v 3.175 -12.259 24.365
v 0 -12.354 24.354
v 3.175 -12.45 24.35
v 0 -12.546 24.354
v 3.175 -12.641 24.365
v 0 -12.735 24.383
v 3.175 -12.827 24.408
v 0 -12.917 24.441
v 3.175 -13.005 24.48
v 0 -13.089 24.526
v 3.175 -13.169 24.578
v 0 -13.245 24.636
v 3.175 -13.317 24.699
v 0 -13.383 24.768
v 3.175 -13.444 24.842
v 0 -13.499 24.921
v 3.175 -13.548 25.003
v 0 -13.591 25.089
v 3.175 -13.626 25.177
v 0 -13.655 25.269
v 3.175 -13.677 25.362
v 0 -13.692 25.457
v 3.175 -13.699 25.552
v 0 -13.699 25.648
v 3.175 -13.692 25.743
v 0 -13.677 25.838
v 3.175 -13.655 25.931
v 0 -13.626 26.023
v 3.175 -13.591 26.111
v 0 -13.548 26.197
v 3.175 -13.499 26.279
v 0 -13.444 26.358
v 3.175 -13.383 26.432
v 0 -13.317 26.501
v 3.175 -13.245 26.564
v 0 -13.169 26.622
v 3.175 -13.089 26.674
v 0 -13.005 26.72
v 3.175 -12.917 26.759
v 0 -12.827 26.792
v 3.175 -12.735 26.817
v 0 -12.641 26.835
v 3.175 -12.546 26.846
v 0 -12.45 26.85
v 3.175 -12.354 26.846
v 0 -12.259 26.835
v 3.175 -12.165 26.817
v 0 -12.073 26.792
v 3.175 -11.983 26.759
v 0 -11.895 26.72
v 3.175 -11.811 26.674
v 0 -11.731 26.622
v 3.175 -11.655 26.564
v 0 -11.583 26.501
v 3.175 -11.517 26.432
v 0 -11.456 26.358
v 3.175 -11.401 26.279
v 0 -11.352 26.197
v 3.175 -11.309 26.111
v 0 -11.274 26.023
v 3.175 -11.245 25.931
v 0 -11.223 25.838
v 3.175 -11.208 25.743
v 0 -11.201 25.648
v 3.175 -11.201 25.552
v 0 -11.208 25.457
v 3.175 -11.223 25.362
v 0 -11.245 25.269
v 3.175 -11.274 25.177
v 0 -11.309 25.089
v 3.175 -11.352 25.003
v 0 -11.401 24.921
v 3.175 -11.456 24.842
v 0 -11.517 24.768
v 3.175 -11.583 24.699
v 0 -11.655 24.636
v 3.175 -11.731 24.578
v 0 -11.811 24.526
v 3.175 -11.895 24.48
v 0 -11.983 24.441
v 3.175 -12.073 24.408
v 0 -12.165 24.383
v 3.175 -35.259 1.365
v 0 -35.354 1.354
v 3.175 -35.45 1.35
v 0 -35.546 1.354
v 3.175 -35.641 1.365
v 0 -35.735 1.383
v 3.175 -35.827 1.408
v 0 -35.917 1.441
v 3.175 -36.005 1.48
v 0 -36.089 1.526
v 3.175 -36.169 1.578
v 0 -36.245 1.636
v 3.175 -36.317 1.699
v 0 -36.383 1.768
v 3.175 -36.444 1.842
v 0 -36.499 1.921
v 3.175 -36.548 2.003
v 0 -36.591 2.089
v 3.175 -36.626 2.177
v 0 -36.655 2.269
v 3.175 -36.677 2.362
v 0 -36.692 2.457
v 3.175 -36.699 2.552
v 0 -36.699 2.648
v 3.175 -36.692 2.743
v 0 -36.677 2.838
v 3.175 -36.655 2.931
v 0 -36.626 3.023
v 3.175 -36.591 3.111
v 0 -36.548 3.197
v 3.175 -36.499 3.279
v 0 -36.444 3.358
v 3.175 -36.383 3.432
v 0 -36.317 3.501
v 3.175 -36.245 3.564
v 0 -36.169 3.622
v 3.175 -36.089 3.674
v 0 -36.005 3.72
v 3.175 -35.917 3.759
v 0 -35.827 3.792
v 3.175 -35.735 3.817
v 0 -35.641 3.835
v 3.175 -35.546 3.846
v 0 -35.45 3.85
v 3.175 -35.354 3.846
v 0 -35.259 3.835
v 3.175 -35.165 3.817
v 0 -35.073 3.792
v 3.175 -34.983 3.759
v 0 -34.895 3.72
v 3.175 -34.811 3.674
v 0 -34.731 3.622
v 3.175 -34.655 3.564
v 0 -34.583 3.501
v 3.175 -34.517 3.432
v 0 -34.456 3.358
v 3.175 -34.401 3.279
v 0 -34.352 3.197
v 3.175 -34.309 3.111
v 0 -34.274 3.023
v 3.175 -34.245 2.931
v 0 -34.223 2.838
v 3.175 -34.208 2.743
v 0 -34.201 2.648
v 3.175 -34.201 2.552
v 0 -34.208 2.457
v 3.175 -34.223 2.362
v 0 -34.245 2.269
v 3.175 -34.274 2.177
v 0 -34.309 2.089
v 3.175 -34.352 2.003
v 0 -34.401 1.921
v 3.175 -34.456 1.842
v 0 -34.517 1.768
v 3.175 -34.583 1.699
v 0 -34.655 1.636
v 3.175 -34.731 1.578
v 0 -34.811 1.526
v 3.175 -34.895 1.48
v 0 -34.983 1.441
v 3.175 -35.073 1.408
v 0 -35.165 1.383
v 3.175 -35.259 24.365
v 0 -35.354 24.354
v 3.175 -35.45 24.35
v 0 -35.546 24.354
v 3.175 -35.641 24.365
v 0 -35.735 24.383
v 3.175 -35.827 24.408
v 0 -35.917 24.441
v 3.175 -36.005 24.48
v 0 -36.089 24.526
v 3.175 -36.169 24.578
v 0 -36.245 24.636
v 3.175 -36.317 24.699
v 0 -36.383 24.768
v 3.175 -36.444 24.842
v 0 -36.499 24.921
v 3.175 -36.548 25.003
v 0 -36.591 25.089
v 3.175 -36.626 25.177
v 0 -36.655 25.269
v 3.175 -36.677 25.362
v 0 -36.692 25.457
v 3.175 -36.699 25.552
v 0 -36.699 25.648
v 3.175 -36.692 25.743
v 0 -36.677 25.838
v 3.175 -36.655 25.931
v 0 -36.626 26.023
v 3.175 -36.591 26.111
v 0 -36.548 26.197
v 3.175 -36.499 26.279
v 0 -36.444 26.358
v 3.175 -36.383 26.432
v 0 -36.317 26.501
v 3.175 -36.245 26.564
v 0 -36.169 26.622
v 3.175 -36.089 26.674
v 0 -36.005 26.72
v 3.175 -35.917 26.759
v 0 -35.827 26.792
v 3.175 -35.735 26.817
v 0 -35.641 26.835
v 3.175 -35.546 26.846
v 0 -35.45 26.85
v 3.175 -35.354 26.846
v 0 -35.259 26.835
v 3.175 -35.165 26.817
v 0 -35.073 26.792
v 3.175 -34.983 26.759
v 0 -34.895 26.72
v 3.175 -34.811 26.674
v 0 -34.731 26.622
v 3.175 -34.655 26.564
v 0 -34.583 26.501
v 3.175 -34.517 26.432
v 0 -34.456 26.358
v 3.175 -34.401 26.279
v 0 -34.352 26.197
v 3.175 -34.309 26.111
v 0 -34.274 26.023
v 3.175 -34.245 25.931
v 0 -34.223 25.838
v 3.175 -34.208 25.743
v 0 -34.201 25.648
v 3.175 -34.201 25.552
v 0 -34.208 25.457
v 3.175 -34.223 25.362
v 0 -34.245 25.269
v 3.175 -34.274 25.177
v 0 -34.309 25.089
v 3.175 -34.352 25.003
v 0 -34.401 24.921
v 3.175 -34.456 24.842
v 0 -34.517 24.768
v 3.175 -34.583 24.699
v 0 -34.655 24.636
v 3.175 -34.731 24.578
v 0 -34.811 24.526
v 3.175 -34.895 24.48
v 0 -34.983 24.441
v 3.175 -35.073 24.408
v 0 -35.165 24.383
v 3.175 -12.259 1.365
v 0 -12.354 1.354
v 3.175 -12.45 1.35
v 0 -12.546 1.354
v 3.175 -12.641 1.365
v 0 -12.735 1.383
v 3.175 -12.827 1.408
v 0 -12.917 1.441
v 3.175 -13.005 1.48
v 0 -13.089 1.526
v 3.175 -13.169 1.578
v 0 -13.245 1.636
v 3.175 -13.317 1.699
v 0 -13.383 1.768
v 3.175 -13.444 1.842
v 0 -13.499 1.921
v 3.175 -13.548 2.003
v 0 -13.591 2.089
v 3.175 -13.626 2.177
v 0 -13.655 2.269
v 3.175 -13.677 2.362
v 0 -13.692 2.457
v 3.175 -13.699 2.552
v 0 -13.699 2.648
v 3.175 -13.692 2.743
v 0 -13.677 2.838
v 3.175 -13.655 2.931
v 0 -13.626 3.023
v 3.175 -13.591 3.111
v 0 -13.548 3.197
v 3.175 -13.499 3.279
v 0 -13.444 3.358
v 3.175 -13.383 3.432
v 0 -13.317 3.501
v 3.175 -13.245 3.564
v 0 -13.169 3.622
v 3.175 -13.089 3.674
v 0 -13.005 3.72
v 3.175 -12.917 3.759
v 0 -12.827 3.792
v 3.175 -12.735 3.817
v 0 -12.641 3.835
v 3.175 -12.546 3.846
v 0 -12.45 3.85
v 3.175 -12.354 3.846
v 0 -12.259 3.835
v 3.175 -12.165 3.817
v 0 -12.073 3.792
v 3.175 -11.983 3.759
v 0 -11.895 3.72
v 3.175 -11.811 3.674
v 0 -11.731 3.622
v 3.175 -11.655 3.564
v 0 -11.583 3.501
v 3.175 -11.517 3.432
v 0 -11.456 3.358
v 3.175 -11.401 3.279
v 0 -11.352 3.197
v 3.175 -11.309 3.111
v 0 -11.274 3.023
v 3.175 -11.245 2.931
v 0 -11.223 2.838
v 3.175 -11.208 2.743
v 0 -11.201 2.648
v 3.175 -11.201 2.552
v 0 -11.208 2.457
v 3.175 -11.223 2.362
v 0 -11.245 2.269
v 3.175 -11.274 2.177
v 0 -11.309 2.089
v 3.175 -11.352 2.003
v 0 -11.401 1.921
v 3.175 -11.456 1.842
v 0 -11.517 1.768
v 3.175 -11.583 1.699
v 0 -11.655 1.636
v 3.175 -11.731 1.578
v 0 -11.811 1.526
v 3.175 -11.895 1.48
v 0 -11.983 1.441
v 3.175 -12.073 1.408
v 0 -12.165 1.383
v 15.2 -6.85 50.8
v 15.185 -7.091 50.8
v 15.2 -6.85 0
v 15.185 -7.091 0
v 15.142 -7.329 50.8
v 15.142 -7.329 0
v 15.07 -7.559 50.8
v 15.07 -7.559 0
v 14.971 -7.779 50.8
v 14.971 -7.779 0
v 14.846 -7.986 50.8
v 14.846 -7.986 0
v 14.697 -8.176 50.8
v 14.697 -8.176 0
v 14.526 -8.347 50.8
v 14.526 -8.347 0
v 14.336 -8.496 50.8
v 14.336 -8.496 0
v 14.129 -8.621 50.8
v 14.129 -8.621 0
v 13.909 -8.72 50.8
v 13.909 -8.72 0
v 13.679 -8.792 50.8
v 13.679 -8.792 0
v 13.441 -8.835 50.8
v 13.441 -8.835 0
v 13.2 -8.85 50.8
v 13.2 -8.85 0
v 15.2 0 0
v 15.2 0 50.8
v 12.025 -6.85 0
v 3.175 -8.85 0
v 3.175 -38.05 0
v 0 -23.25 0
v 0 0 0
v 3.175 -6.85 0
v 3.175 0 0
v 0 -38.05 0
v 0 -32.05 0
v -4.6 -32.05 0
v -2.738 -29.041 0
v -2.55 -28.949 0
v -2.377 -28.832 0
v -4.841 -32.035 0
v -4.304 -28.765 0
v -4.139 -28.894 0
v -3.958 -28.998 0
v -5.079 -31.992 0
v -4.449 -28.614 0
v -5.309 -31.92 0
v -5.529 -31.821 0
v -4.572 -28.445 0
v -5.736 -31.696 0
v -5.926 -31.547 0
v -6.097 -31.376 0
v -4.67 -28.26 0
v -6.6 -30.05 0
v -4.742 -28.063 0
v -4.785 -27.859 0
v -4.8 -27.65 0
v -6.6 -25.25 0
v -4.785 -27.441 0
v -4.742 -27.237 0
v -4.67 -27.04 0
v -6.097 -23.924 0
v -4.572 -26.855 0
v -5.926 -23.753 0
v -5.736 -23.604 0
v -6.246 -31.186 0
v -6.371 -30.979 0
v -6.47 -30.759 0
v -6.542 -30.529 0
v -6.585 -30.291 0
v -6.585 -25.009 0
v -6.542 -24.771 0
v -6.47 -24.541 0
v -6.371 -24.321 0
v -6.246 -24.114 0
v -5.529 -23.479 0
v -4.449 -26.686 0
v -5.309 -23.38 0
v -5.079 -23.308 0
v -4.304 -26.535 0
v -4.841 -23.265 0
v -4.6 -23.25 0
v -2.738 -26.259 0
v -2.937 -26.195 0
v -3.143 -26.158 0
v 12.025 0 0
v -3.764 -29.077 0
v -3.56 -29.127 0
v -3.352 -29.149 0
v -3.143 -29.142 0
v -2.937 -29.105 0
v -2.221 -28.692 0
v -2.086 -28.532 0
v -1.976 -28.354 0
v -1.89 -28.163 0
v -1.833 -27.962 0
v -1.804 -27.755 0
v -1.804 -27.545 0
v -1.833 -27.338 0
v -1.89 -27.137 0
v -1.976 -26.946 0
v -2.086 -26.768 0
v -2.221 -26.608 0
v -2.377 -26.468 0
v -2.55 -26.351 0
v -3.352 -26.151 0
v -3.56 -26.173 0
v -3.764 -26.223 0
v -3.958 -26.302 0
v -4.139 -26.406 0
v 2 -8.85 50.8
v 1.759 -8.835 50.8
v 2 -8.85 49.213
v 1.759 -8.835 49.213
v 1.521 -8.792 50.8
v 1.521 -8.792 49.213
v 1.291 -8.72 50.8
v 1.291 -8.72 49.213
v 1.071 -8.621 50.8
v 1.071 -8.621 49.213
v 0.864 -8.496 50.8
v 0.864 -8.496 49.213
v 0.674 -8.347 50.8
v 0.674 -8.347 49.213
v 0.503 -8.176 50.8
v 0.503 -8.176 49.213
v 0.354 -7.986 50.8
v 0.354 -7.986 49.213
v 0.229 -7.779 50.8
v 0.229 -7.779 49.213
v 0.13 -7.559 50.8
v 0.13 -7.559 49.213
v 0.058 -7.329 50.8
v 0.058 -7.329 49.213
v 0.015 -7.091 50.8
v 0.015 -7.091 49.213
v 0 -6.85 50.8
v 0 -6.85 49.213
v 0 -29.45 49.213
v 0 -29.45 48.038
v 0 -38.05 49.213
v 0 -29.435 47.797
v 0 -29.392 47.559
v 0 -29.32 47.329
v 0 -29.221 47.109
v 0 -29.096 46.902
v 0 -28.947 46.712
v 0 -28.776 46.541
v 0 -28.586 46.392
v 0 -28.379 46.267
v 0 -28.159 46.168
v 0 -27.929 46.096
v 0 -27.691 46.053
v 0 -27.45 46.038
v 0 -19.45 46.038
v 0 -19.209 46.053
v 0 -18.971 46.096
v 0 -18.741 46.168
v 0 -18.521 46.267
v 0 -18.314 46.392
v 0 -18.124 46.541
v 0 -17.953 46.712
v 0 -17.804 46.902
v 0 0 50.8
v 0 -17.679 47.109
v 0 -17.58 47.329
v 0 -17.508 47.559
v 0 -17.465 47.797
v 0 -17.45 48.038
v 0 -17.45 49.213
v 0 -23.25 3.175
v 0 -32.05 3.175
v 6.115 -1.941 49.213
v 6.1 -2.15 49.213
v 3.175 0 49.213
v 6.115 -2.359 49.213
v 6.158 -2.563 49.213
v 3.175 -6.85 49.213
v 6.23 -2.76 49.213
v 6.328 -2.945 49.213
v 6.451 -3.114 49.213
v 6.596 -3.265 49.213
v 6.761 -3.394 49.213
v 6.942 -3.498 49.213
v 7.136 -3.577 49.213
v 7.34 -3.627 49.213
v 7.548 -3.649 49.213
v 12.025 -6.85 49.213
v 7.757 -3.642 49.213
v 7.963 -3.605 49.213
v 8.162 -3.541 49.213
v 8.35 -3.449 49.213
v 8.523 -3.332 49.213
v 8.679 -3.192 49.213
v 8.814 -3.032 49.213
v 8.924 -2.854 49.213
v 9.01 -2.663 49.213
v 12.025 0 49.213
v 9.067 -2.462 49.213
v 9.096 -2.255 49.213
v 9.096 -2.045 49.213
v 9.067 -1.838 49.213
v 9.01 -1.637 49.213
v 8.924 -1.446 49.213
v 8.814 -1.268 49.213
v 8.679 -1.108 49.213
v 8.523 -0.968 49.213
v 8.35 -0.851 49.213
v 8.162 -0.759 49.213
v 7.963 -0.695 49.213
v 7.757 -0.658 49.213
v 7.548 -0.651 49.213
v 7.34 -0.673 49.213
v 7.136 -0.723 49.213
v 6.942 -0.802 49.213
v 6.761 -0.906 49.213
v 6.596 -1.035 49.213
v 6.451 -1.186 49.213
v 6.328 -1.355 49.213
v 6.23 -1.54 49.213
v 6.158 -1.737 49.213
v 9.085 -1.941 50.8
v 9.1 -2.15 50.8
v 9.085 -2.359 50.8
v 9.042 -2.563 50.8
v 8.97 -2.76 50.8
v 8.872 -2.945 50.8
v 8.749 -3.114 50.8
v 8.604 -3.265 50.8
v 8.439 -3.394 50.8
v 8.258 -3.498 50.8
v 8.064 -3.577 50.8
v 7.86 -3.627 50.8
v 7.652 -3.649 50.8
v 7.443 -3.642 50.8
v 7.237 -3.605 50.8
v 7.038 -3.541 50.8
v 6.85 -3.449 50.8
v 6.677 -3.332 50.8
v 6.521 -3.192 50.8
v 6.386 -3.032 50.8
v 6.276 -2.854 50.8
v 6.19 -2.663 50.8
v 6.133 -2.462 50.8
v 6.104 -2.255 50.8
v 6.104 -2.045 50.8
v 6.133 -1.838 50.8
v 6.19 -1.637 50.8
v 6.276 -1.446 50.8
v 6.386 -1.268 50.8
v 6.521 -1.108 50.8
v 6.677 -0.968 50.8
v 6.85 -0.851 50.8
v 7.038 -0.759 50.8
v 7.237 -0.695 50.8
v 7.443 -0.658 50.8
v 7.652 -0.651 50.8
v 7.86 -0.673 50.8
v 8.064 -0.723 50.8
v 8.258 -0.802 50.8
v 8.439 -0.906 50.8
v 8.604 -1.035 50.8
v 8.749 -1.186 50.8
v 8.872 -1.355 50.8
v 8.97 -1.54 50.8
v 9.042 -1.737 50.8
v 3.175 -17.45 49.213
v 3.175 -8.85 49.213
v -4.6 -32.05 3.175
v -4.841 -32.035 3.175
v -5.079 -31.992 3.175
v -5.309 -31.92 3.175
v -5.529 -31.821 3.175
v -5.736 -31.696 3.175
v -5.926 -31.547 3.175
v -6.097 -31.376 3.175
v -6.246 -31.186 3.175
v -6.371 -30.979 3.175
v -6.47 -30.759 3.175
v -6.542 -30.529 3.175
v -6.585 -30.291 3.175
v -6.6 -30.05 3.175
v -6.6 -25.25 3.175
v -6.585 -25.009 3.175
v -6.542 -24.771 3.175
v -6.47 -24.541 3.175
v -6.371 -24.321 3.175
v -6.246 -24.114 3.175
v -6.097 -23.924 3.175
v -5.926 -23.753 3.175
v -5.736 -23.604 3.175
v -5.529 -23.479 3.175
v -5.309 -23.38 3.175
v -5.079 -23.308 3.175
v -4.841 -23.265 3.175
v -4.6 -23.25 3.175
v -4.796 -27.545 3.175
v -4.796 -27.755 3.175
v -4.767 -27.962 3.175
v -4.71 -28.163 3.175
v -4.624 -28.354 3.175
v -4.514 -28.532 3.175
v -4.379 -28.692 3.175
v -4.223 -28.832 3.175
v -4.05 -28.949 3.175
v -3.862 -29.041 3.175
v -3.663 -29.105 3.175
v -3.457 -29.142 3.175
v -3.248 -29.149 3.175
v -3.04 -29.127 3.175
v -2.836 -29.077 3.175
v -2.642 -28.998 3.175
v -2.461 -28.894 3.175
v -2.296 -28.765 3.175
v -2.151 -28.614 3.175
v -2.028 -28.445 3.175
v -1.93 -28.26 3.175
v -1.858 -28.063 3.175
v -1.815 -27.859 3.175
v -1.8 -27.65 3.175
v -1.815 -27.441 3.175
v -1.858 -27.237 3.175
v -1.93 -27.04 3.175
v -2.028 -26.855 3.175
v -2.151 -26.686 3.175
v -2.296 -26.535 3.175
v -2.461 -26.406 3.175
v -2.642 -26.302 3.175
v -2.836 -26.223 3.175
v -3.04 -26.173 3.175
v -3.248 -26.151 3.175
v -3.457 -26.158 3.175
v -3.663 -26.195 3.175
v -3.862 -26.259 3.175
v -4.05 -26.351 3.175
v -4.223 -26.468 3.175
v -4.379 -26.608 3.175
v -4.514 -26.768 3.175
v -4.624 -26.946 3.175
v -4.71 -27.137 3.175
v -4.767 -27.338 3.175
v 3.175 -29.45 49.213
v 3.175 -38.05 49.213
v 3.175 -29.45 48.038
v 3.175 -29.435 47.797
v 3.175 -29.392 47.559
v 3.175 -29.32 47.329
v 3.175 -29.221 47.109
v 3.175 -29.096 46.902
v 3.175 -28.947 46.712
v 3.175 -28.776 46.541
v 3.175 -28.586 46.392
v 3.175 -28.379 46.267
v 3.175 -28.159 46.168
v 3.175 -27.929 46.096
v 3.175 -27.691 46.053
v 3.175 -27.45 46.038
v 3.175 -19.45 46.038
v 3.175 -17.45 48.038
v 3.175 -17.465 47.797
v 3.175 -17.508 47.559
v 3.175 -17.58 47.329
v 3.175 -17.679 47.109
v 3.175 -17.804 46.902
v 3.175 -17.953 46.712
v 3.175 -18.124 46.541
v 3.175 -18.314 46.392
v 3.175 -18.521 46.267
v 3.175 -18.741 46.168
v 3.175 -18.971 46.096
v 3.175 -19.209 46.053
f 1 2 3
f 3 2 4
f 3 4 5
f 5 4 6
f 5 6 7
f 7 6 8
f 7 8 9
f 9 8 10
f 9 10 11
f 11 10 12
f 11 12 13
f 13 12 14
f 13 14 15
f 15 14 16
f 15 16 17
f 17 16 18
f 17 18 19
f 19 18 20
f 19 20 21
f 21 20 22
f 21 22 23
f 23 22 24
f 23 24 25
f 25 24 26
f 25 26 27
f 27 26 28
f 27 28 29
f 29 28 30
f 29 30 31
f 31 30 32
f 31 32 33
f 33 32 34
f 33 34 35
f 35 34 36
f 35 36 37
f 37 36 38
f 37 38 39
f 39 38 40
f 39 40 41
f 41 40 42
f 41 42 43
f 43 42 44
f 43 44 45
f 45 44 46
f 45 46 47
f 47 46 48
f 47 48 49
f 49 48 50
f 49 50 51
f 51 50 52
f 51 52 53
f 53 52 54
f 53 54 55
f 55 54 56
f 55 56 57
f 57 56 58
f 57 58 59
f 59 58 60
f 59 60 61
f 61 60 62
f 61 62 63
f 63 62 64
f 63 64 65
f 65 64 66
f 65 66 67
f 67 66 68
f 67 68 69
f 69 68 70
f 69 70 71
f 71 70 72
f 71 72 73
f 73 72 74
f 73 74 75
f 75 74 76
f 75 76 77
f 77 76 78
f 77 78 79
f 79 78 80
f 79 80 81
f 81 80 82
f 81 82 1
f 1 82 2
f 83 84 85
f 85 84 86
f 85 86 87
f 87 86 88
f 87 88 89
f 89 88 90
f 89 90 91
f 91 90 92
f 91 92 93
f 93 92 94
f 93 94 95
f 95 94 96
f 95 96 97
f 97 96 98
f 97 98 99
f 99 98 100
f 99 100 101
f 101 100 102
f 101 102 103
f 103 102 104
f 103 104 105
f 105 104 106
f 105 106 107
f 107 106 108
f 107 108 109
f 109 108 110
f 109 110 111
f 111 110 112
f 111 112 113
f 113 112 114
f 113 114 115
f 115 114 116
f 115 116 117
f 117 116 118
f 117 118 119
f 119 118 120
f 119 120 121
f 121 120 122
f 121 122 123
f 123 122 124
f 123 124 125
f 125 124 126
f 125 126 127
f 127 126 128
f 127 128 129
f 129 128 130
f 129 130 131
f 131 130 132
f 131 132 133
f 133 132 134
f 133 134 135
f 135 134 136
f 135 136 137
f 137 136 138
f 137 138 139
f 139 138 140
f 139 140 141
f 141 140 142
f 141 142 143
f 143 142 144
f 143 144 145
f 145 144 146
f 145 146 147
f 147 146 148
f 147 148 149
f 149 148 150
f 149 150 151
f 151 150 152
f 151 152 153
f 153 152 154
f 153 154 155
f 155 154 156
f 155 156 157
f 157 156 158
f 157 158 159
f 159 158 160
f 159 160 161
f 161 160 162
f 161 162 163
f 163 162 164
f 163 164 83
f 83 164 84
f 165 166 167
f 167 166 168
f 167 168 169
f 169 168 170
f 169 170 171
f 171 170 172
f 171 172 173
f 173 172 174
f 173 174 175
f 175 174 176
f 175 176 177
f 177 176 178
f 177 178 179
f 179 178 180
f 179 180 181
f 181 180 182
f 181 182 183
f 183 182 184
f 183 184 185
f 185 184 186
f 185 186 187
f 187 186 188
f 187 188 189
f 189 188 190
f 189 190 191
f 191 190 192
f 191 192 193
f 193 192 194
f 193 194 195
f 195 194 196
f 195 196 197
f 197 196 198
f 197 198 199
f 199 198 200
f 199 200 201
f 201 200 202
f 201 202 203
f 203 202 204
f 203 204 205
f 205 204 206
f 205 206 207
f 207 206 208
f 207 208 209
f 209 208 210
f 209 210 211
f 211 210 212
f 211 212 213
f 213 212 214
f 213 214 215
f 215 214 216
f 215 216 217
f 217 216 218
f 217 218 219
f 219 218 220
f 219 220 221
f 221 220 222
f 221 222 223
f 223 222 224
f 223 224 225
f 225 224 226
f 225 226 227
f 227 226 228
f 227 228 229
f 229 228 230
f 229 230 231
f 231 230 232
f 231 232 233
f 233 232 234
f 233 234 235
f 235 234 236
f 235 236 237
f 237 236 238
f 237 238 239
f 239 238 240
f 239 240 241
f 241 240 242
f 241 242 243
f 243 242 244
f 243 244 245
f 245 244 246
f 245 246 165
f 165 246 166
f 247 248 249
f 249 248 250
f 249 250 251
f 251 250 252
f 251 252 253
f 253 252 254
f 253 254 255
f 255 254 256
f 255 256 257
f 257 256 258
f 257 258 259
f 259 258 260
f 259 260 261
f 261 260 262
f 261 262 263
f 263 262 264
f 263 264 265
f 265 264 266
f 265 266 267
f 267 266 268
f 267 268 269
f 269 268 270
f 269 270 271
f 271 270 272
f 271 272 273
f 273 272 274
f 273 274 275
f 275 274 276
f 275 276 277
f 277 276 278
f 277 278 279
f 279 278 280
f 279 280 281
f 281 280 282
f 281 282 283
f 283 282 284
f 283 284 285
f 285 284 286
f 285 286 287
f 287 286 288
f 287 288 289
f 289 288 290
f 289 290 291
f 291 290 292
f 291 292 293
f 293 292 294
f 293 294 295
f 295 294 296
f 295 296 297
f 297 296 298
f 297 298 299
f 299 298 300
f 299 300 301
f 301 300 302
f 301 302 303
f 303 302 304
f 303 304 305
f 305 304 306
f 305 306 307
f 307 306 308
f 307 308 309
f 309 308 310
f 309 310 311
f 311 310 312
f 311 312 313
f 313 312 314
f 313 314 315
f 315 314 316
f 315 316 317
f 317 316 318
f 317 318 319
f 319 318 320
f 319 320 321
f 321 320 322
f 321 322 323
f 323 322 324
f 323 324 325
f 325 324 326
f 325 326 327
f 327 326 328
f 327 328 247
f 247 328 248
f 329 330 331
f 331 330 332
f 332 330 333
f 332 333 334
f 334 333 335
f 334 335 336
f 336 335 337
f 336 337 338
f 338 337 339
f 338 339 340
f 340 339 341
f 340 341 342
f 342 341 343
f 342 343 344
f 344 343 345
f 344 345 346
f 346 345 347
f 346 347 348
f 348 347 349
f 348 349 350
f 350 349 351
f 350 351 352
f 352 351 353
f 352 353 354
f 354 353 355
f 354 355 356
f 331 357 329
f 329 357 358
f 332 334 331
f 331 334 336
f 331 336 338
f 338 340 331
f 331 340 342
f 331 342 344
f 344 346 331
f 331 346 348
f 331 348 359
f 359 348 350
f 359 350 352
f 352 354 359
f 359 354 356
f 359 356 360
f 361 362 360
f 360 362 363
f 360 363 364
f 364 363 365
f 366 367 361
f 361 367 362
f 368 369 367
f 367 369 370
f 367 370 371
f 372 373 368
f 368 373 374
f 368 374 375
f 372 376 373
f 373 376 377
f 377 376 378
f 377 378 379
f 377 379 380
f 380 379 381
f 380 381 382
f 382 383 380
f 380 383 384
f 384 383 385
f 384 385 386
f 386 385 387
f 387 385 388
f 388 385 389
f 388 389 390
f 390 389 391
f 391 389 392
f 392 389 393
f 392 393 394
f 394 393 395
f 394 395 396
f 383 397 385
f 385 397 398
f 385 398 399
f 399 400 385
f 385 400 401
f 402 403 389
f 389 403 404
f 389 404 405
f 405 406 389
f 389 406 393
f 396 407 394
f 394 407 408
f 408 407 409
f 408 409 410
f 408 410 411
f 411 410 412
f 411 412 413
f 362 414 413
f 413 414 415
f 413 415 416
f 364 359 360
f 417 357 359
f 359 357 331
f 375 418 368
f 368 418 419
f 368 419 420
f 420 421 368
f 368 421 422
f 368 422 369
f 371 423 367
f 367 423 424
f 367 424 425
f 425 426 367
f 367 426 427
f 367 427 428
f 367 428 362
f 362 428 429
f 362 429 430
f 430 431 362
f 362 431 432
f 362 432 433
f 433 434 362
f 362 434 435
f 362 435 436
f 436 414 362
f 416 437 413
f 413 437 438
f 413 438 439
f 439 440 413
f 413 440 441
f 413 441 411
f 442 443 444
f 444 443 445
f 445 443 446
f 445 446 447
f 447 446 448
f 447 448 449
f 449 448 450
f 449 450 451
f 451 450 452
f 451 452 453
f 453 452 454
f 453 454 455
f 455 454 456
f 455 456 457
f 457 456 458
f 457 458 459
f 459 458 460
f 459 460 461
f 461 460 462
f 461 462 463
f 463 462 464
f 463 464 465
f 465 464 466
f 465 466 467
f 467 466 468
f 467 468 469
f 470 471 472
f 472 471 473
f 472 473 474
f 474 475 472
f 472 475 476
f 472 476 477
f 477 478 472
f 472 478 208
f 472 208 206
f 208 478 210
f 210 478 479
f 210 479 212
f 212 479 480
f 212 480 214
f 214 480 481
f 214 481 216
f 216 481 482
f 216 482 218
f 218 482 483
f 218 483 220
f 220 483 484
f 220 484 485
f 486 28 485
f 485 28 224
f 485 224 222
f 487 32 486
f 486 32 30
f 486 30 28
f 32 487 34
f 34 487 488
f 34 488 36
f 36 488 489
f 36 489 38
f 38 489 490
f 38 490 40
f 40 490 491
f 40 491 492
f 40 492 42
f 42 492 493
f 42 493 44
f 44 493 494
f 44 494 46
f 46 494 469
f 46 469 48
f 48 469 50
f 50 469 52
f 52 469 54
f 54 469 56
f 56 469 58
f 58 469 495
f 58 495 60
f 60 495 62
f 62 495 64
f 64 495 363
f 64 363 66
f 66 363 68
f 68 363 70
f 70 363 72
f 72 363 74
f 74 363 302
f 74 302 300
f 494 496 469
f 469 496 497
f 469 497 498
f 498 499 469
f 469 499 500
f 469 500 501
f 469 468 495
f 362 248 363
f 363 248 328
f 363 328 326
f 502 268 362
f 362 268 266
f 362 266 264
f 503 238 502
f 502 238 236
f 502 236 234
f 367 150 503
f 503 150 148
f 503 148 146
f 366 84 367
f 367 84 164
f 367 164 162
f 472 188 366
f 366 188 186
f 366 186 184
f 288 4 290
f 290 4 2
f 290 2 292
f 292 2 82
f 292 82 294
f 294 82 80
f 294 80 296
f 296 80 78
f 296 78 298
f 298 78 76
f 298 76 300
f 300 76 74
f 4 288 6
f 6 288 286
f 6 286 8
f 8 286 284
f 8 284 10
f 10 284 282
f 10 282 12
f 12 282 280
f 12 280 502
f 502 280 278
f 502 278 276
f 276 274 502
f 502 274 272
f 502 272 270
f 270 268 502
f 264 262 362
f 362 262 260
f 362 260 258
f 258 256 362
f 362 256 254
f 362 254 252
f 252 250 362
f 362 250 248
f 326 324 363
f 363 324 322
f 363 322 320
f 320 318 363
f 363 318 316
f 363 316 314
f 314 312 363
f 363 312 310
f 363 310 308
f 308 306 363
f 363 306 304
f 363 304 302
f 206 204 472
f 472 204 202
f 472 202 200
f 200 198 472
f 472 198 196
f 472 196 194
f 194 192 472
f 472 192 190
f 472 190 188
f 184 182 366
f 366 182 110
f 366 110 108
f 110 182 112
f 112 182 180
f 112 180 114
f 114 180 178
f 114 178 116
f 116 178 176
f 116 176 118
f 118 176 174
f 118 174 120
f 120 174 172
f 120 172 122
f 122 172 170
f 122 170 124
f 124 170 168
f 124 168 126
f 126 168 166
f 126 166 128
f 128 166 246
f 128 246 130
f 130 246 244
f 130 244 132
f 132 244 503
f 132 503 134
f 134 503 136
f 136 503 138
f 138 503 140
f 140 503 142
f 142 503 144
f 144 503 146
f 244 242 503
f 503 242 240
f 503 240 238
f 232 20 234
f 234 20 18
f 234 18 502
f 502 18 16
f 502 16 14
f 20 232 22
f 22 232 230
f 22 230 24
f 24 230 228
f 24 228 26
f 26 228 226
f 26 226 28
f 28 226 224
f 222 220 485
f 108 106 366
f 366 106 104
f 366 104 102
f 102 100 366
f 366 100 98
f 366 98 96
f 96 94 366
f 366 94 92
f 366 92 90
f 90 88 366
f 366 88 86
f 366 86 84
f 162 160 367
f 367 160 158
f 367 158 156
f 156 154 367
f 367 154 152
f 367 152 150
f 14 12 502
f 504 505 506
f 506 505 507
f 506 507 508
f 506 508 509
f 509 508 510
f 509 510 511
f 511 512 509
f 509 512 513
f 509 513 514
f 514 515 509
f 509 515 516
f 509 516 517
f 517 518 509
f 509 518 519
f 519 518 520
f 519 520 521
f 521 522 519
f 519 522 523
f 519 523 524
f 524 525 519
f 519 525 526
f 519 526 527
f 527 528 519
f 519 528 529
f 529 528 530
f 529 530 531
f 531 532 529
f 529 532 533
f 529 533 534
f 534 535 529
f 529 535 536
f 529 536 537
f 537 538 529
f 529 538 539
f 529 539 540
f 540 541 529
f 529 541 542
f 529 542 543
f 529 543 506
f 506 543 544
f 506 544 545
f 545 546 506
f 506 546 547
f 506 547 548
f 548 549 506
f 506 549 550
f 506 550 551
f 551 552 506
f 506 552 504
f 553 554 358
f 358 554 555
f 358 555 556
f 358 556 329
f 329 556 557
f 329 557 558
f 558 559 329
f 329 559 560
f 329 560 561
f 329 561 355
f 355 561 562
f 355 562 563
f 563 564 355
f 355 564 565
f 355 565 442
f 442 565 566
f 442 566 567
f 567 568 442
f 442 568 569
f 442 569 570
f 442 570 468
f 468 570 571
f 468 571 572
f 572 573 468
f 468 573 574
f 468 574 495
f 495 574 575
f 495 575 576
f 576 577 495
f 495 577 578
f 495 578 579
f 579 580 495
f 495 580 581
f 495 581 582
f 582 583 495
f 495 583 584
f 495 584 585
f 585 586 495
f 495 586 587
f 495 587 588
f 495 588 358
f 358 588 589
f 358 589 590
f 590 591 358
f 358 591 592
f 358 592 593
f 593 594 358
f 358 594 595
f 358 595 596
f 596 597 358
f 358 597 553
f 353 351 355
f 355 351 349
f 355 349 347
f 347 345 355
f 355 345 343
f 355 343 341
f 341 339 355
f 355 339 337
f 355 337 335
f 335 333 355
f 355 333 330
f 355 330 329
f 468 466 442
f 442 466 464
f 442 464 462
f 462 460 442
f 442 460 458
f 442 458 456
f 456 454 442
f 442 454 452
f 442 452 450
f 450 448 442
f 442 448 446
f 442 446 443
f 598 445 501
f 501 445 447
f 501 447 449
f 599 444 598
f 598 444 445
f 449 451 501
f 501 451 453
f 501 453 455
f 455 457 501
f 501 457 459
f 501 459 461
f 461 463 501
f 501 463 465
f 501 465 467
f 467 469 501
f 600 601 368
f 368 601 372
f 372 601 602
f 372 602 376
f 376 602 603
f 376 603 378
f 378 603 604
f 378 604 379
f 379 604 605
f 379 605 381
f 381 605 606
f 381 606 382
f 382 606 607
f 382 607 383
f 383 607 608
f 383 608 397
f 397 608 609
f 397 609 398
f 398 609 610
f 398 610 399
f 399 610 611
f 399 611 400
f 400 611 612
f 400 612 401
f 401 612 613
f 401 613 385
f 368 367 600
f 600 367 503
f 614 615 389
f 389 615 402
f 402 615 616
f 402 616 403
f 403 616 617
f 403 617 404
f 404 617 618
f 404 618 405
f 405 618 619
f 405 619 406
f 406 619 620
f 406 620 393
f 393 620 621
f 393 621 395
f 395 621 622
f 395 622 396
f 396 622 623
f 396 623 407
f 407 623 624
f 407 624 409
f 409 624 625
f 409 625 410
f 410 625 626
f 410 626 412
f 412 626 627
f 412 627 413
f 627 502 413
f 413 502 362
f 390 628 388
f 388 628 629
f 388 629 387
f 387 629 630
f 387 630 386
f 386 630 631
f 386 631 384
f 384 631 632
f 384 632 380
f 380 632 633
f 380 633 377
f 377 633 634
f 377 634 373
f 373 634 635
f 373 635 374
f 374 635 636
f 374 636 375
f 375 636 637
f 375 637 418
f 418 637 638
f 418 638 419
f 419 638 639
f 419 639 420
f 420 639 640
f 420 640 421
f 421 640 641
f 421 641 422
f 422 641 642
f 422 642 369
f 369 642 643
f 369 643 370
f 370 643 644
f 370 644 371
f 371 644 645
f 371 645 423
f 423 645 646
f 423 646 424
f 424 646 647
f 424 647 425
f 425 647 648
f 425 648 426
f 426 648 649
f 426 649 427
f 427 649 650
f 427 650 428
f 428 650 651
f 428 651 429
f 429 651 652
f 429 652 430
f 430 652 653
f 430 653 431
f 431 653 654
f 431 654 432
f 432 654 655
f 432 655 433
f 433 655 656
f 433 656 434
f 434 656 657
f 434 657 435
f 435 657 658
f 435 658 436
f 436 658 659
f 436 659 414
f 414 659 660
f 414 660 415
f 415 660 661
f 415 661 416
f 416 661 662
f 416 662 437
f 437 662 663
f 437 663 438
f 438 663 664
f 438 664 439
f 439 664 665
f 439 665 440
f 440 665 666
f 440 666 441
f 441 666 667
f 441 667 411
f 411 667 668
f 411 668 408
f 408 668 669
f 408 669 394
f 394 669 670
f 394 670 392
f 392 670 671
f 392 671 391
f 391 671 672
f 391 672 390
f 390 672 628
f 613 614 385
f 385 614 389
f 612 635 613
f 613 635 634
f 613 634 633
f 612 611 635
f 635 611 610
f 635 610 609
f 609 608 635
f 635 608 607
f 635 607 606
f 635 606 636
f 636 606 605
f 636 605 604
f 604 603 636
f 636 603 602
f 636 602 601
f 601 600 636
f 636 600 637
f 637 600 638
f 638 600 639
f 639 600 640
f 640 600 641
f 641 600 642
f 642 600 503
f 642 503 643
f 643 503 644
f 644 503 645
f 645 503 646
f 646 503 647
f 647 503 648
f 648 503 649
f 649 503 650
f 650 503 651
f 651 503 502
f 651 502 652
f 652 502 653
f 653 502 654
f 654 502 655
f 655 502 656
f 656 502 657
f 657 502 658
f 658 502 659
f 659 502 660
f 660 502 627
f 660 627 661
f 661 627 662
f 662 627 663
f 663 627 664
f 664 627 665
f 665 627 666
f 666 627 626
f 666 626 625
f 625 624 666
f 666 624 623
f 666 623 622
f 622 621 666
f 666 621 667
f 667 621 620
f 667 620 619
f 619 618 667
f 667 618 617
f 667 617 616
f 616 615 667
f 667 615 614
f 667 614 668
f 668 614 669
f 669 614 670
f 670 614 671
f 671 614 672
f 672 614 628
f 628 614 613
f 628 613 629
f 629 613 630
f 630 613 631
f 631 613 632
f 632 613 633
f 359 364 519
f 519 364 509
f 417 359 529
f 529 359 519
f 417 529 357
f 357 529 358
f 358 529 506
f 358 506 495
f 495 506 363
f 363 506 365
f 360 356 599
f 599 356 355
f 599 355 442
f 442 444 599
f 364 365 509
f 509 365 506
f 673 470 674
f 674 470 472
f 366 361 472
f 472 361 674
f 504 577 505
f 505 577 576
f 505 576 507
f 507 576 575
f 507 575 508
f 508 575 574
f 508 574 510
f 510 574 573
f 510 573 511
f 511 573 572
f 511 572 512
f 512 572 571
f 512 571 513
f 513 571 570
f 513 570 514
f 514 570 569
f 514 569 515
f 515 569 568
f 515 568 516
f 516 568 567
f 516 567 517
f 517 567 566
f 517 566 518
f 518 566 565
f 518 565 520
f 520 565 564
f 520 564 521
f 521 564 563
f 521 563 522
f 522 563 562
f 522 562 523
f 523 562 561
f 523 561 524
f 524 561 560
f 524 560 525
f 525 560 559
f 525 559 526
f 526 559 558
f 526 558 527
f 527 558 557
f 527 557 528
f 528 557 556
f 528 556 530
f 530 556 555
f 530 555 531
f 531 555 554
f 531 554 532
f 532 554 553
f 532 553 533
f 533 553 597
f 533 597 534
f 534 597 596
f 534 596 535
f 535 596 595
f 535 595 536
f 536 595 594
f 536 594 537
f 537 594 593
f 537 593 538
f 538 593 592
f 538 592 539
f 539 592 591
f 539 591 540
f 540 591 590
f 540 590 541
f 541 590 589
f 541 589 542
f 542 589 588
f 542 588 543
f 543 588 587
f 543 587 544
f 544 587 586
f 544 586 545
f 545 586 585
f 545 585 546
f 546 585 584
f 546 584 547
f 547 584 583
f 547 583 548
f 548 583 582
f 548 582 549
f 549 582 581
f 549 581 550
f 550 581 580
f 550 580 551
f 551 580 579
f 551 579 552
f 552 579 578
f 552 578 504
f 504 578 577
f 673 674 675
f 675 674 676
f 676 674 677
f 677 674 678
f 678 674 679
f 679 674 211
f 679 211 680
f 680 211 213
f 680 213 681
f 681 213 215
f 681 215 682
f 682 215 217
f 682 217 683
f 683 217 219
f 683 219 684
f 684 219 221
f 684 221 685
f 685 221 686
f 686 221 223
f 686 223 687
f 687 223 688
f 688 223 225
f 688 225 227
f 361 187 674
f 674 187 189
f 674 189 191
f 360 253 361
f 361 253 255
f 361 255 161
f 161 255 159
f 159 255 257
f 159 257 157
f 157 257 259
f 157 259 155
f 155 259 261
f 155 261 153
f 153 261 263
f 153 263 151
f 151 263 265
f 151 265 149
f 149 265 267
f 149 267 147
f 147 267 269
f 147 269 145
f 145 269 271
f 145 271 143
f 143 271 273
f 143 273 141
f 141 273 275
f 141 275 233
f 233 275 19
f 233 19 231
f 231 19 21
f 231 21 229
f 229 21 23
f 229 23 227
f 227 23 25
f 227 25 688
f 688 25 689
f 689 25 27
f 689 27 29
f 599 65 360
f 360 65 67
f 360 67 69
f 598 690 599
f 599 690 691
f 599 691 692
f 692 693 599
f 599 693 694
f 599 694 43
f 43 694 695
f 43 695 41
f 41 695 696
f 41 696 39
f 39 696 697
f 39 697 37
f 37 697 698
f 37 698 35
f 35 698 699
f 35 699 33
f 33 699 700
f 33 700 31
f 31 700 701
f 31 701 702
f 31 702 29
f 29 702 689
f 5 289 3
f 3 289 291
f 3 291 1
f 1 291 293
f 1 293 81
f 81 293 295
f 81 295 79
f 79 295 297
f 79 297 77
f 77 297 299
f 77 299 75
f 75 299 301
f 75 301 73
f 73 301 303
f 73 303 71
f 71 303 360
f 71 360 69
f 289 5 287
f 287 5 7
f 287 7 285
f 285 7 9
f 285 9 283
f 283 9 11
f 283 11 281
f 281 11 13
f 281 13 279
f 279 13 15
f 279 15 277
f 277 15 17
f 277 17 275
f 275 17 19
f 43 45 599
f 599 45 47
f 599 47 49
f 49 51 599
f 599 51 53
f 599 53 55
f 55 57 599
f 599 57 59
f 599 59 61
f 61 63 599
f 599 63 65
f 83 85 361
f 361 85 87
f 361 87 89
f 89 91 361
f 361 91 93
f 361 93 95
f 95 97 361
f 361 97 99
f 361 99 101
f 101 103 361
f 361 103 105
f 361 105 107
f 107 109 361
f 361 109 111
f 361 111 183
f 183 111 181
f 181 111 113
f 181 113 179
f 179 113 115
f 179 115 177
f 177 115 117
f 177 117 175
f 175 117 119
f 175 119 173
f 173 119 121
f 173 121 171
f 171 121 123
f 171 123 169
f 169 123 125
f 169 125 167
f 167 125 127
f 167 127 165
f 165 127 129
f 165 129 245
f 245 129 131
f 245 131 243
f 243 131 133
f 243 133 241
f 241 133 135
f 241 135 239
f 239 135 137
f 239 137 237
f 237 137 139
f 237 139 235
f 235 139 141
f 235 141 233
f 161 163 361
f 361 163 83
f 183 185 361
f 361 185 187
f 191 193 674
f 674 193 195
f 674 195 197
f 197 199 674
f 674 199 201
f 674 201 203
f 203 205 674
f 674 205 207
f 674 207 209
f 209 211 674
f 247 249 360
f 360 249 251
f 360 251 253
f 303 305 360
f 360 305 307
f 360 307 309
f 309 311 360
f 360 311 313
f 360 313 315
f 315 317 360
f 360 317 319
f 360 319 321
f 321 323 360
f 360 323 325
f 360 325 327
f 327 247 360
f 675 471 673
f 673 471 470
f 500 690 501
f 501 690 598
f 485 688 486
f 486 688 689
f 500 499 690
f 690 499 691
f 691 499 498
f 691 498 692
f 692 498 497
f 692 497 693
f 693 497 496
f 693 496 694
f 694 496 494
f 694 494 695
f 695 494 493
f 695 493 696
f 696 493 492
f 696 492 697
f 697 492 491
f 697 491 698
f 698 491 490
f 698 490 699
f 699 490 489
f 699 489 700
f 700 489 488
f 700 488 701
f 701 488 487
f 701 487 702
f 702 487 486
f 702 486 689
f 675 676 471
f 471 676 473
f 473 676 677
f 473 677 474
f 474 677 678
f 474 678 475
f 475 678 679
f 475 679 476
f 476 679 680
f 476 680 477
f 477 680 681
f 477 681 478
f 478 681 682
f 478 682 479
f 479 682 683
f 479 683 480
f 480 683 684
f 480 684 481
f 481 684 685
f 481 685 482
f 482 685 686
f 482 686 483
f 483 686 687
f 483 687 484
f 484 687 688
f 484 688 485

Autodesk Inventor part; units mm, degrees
ref_plane "YZ Plane" through (0, 0, 0) normal (1, 0, 0) x (0, 1, 0)
ref_plane "XZ Plane" through (0, 0, 0) normal (0, 1, 0) x (-1, 0, 0)
ref_plane "XY Plane" through (0, 0, 0) normal (0, 0, 1) x (1, 0, 0)
sketch "Sketch1" plane through (0, 0, 0) normal (0, 0, 1) x (1, 0, 0)
  line L0 (0, 0) -> (0, -38.05)
  line L1 (0, -38.05) -> (3.175, -38.05)
  line L2 (3.175, -38.05) -> (3.175, 0)
  line L3 (3.175, 0) -> (0, 0)
  line L4 (3.175, 0) -> (3.175, -6.85)
  line L5 (3.175, -6.85) -> (12.025, -6.85)
  line L6 (12.025, -6.85) -> (12.025, 0)
  line L7 (12.025, 0) -> (15.2, 0)
  line L8 (15.2, 0) -> (15.2, -6.85)
  line L9 (15.2, -6.85) -> (15.2, -8.85)
  line L10 (15.2, -8.85) -> (3.175, -8.85)
  line L11 (0, -38.05) -> (0, -31.2)
  dimension "d0" = 38.05
  dimension "d1" = 3.175
  dimension "d2" = 6.85
  dimension "d3" = 8.85
  dimension "d4" = 3.175
  dimension "d5" = 2
extrude "Extrusion1" add sketch "Sketch1" along normal blind 49.213
sketch "Sketch2" plane through (0, 0, 0) normal (0, 0, -1) x (-1, 0, 0)
  line L0 (0, -38.05) -> (-3.175, -38.05) projected
  line L1 (0, -38.05) -> (0, -32.05)
  line L2 (0, 0) -> (0, -38.05) projected
  line L3 (0, -32.05) -> (0, -23.25)
  line L4 (0, -23.25) -> (6.6, -23.25)
  line L5 (6.6, -23.25) -> (6.6, -32.05)
  line L6 (6.6, -32.05) -> (0, -32.05)
  dimension "d12" = 6
  dimension "d13" = 8.8
  dimension "d14" = 6.6
extrude "Extrusion2" add sketch "Sketch2" against normal blind 3.175
sketch "Sketch3" plane through (0, 0, 3.175) normal (0, 0, 1) x (1, 0, 0)
  line L0 (0, -23.25) -> (0, -32.05) projected
  line L1 (0, -23.25) -> (-3.3, -23.25)
  line L2 (0, -23.25) -> (-6.6, -23.25) projected
  line L3 (-3.3, -23.25) -> (-3.3, -27.65)
  point P0 (0, 0)
  dimension "d17" = 4.4
hole "Hole1" at (-3.3, -27.65, 3.175) direction (0, 0, -1) diameter 3 end through all
fillet "Fillet1" radius 2 2 edges at (-6.6, -23.25, 1.5875) (-6.6, -32.05, 1.5875)
sketch "Sketch4" plane through (0, 0, 49.213) normal (0, 0, 1) x (1, 0, 0)
  line L0 (3.175, 0) -> (0, 0) projected
  line L1 (3.175, -8.85) -> (15.2, -8.85) projected
  line L2 (0, 0) -> (15.2, 0)
  line L3 (15.2, 0) -> (15.2, -8.85)
  line L4 (15.2, -8.85) -> (0, -8.85)
  line L5 (0, -8.85) -> (0, 0)
extrude "Extrusion3" add sketch "Sketch4" along normal blind 1.5875
sketch "Sketch5" plane through (0, 0, 50.8005) normal (0, 0, 1) x (1, 0, 0)
  line L0 (3.175, 0) -> (0, 0) projected
  line L1 (0, 0) -> (3.175, 0)
  line L2 (3.175, 0) -> (12.025, 0) projected
  line L3 (3.175, 0) -> (7.6, 0)
  line L4 (7.6, 0) -> (7.6, -3.425)
  dimension "d28" = 3.425
hole "Hole2" at (7.6, -3.425, 50.8005) direction (0, 0, -1) diameter 3 end through all
fillet "Fillet2" radius 2 2 edges at (0, -8.85, 50.0068) (15.2, -8.85, 25.4003)
sketch "Sketch6" plane through (0, -38.05, 0) normal (-1, 0, 0) x (0, 0, 1)
  line L0 (0, 0) -> (0, 29.2) projected
  line L1 (0, 0) -> (0, 28.2)
  line L2 (0, 28.2) -> (28.2, 28.2)
  line L3 (28.2, 28.2) -> (28.2, 0)
  line L4 (0, 0) -> (49.213, 0) projected
  line L5 (0, 0) -> (0, 14.1)
  line L6 (0, 12.8) -> (0, 14.8) projected
  line L7 (0, 14.1) -> (14.1, 14.1)
  line L8 (14.1, 14.1) -> (2.6, 14.1)
  line L9 (2.6, 14.1) -> (2.6, 2.6)
  line L10 (0, 12.8) -> (3.175, 12.8) projected
  line L11 (2.6, 2.6) -> (25.6, 2.6)
  line L12 (25.6, 2.6) -> (25.6, 25.6)
  line L13 (25.6, 25.6) -> (2.6, 25.6)
  line L14 (2.6, 25.6) -> (2.6, 2.6)
  point P0 (0, 38.05)
  dimension "d37" = 28.2
  dimension "d38" = 28.2
  dimension "d39" = 11.5
  dimension "d40" = 11.5
  dimension "d41" = 90
  dimension "d42" = 23
  dimension "d43" = 23
hole "Hole3" at (0, -35.45, 2.6) at (0, -35.45, 25.6) at (0, -12.45, 25.6) at (0, -12.45, 2.6) direction (1, 0, 0) diameter 2.5 end through all
delete faces "Delete1" heal yes whole lump no faces at (7.7207, -4.9201, 50.2713)
sketch "Sketch7" plane through (0, 0, 50.8005) normal (0, 0, 1) x (1, 0, 0)
  line L0 (15.2, -6.85) -> (15.2, 0) projected
  line L1 (15.2, 0) -> (0, 0) projected
  line L2 (15.2, 0) -> (0, 0)
  line L3 (0, 0) -> (7.6, 0)
  line L4 (7.6, 0) -> (7.6, -2.15)
  dimension "d51" = 2.15
hole "Hole4" at (7.6, -2.15, 50.8005) direction (0, 0, -1) diameter 3 depth 3.5
sketch "Sketch8" plane through (0, 0, 49.213) normal (0, 0, 1) x (1, 0, 0)
  line L0 (0, -38.05) -> (3.175, -38.05) projected
  line L1 (3.175, -38.05) -> (0, -38.05)
  line L2 (3.175, -23.45) -> (0, -23.45)
  line L3 (0, -23.45) -> (0, -17.45)
  line L4 (0, -17.45) -> (3.175, -17.45)
  line L5 (3.175, -17.45) -> (3.175, -23.45)
  line L6 (3.175, -23.45) -> (0, -23.45)
  line L7 (0, -23.45) -> (0, -29.45)
  line L8 (0, -29.45) -> (3.175, -29.45)
  line L9 (3.175, -29.45) -> (3.175, -23.45)
  point P0 (0, 0)
  point P1 (3.175, -8.85)
  dimension "d59" = 6
  dimension "d60" = 6
extrude "Extrusion4" cut sketch "Sketch8" against normal blind 3.175
fillet "Fillet3" radius 2 2 edges at (1.5875, -17.45, 46.038) (1.5875, -29.45, 46.038)
properties part number "Yaw Motor Mount"
